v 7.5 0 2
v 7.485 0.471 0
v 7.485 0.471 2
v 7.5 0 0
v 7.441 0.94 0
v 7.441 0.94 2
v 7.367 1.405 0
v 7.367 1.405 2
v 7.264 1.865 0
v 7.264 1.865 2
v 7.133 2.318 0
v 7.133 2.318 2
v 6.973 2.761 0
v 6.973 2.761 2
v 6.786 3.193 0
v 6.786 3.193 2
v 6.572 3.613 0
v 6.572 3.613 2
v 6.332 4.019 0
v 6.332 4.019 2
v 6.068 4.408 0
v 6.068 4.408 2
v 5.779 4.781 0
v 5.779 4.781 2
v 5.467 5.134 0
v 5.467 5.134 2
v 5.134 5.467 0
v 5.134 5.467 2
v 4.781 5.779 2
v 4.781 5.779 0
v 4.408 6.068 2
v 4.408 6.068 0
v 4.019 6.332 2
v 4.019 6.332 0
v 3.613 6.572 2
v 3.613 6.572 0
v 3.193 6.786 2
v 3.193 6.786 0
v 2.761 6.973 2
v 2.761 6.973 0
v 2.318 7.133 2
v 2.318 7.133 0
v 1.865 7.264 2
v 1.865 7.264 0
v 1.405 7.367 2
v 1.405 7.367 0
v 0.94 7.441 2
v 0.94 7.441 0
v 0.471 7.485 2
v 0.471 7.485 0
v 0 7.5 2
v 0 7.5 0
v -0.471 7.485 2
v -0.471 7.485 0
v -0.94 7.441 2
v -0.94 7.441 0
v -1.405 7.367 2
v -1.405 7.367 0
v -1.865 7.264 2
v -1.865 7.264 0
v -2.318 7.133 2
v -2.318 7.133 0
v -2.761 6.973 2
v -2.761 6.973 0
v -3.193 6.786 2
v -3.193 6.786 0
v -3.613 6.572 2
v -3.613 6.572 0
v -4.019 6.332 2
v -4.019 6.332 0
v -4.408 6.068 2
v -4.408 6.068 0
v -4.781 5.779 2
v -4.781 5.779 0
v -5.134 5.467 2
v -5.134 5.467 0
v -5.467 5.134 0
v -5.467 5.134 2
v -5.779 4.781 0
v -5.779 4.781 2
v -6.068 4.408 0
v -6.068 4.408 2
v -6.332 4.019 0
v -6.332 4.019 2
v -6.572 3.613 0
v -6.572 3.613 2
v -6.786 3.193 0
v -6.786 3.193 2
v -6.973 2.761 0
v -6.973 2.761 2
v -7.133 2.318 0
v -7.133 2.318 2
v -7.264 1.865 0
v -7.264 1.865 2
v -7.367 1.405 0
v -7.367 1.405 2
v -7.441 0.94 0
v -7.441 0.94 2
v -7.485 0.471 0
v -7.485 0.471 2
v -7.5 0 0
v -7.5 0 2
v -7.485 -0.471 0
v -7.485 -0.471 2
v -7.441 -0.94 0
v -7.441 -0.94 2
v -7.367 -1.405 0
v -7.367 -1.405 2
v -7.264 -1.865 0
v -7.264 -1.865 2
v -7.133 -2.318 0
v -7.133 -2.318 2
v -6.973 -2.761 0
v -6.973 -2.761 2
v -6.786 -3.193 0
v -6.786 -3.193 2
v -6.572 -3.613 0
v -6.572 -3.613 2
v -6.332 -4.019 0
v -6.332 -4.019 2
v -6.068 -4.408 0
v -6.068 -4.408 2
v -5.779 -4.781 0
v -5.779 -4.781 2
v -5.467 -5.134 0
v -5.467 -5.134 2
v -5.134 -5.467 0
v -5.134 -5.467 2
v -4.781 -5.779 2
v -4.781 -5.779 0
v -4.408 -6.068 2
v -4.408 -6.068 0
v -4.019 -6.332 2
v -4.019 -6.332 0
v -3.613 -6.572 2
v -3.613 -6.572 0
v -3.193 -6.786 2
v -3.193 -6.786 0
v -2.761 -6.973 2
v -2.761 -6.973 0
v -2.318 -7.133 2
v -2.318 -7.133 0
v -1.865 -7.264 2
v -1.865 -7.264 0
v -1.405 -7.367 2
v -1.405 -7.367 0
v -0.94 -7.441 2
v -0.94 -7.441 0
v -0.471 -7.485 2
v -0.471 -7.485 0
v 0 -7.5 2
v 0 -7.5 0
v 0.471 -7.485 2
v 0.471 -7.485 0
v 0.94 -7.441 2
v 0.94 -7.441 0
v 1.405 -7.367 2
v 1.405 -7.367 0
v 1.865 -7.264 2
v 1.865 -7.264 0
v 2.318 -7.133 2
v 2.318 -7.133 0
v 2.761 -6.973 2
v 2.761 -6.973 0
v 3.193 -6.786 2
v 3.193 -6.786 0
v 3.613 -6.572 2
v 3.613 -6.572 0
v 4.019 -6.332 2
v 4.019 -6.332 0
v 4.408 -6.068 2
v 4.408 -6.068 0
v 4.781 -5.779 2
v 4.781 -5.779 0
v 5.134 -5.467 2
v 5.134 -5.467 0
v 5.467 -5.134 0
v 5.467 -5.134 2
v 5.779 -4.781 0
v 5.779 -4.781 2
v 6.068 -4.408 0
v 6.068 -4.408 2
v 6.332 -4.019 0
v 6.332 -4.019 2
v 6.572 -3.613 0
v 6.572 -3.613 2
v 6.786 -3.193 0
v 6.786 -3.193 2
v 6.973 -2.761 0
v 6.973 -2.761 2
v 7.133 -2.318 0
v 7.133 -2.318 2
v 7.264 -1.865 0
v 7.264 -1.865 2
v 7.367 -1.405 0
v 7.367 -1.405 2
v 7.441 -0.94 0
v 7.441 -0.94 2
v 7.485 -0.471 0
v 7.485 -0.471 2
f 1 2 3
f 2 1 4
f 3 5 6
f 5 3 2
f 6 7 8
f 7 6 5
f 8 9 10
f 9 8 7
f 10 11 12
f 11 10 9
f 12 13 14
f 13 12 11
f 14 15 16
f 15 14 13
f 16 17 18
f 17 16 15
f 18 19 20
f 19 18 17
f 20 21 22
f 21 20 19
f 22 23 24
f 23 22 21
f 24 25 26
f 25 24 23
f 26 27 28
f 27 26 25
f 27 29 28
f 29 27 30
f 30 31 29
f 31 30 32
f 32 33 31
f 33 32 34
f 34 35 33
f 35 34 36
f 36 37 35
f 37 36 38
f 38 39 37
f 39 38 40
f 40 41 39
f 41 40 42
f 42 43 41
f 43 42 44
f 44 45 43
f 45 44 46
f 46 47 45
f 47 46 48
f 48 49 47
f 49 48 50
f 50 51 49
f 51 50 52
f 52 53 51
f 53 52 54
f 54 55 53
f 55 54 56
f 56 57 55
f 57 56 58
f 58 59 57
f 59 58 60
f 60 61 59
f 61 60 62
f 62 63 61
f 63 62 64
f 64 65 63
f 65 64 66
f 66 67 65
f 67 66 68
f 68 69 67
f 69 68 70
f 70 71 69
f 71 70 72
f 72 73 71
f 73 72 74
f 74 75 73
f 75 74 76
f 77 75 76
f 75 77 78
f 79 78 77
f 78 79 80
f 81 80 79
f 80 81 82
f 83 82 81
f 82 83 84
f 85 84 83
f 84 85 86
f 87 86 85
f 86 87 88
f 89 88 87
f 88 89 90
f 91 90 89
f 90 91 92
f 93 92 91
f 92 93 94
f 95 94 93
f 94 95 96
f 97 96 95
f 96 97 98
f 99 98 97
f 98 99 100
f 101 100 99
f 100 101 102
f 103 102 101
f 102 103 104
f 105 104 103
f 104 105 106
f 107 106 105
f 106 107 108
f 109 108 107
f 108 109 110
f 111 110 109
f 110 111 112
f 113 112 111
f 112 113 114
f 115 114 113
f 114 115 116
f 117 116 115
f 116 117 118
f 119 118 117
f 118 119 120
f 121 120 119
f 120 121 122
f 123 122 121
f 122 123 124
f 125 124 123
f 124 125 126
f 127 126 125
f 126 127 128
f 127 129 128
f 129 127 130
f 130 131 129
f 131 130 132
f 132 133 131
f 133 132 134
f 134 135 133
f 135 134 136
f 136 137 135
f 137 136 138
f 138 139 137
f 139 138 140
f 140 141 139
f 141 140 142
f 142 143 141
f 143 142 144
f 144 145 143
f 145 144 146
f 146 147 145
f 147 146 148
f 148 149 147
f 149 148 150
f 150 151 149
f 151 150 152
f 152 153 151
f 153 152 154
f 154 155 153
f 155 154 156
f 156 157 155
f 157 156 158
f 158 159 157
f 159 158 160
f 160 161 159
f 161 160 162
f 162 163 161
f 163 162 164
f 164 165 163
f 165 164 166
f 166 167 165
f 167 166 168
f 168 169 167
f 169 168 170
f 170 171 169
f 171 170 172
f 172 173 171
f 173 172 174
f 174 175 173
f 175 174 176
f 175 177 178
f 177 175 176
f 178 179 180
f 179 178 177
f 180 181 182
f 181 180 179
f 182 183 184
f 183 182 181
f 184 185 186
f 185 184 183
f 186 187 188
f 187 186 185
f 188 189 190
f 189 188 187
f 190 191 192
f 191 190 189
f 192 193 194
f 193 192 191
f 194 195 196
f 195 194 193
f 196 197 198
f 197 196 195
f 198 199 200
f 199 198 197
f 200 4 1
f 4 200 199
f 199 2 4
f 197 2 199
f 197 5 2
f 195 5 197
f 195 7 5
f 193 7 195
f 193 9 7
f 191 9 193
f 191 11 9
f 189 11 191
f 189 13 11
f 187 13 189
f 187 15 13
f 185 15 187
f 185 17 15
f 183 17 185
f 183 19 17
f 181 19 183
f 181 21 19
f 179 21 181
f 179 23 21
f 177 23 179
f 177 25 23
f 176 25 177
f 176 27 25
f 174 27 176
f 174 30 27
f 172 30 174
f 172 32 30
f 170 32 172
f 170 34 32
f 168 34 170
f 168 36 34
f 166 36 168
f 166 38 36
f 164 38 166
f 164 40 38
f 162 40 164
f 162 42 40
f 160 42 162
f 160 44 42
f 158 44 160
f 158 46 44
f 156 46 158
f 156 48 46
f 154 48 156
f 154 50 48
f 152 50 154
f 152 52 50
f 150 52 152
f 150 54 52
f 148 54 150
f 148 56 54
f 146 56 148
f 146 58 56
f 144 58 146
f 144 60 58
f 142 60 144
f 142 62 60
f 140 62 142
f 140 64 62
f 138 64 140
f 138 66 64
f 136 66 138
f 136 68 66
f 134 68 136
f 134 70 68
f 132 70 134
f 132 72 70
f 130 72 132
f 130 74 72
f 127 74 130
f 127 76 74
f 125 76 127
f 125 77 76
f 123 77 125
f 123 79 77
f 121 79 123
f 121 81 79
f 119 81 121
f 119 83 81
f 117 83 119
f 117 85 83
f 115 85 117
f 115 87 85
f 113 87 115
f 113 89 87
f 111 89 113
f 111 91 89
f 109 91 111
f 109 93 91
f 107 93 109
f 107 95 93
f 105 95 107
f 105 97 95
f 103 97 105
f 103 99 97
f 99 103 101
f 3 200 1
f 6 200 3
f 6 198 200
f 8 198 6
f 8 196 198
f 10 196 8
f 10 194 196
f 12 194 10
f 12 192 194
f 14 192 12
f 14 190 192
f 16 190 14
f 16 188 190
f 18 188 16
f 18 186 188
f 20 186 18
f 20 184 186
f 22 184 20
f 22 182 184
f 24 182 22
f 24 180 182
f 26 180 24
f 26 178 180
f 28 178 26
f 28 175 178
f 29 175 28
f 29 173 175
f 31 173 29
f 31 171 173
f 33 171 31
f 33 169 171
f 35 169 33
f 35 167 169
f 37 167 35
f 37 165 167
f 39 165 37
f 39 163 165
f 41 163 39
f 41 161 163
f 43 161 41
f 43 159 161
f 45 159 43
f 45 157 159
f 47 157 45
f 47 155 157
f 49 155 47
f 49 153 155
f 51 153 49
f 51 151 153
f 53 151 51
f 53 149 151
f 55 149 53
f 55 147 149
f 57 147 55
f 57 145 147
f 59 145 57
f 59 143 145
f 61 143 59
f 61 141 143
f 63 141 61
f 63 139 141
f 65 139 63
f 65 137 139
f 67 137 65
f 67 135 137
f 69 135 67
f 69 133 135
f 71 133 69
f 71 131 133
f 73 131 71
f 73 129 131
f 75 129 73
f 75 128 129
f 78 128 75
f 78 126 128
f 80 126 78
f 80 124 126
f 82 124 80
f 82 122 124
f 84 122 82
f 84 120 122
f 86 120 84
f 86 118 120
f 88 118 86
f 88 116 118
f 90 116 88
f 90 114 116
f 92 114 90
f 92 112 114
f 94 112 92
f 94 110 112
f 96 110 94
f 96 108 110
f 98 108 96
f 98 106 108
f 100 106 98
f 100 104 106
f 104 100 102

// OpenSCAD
//
// ktRACK17
//

gap1 = 0.001;
gap2 = 0.002;
th = 2;


cylinder(r=15/2, h=th, $fn=100);
